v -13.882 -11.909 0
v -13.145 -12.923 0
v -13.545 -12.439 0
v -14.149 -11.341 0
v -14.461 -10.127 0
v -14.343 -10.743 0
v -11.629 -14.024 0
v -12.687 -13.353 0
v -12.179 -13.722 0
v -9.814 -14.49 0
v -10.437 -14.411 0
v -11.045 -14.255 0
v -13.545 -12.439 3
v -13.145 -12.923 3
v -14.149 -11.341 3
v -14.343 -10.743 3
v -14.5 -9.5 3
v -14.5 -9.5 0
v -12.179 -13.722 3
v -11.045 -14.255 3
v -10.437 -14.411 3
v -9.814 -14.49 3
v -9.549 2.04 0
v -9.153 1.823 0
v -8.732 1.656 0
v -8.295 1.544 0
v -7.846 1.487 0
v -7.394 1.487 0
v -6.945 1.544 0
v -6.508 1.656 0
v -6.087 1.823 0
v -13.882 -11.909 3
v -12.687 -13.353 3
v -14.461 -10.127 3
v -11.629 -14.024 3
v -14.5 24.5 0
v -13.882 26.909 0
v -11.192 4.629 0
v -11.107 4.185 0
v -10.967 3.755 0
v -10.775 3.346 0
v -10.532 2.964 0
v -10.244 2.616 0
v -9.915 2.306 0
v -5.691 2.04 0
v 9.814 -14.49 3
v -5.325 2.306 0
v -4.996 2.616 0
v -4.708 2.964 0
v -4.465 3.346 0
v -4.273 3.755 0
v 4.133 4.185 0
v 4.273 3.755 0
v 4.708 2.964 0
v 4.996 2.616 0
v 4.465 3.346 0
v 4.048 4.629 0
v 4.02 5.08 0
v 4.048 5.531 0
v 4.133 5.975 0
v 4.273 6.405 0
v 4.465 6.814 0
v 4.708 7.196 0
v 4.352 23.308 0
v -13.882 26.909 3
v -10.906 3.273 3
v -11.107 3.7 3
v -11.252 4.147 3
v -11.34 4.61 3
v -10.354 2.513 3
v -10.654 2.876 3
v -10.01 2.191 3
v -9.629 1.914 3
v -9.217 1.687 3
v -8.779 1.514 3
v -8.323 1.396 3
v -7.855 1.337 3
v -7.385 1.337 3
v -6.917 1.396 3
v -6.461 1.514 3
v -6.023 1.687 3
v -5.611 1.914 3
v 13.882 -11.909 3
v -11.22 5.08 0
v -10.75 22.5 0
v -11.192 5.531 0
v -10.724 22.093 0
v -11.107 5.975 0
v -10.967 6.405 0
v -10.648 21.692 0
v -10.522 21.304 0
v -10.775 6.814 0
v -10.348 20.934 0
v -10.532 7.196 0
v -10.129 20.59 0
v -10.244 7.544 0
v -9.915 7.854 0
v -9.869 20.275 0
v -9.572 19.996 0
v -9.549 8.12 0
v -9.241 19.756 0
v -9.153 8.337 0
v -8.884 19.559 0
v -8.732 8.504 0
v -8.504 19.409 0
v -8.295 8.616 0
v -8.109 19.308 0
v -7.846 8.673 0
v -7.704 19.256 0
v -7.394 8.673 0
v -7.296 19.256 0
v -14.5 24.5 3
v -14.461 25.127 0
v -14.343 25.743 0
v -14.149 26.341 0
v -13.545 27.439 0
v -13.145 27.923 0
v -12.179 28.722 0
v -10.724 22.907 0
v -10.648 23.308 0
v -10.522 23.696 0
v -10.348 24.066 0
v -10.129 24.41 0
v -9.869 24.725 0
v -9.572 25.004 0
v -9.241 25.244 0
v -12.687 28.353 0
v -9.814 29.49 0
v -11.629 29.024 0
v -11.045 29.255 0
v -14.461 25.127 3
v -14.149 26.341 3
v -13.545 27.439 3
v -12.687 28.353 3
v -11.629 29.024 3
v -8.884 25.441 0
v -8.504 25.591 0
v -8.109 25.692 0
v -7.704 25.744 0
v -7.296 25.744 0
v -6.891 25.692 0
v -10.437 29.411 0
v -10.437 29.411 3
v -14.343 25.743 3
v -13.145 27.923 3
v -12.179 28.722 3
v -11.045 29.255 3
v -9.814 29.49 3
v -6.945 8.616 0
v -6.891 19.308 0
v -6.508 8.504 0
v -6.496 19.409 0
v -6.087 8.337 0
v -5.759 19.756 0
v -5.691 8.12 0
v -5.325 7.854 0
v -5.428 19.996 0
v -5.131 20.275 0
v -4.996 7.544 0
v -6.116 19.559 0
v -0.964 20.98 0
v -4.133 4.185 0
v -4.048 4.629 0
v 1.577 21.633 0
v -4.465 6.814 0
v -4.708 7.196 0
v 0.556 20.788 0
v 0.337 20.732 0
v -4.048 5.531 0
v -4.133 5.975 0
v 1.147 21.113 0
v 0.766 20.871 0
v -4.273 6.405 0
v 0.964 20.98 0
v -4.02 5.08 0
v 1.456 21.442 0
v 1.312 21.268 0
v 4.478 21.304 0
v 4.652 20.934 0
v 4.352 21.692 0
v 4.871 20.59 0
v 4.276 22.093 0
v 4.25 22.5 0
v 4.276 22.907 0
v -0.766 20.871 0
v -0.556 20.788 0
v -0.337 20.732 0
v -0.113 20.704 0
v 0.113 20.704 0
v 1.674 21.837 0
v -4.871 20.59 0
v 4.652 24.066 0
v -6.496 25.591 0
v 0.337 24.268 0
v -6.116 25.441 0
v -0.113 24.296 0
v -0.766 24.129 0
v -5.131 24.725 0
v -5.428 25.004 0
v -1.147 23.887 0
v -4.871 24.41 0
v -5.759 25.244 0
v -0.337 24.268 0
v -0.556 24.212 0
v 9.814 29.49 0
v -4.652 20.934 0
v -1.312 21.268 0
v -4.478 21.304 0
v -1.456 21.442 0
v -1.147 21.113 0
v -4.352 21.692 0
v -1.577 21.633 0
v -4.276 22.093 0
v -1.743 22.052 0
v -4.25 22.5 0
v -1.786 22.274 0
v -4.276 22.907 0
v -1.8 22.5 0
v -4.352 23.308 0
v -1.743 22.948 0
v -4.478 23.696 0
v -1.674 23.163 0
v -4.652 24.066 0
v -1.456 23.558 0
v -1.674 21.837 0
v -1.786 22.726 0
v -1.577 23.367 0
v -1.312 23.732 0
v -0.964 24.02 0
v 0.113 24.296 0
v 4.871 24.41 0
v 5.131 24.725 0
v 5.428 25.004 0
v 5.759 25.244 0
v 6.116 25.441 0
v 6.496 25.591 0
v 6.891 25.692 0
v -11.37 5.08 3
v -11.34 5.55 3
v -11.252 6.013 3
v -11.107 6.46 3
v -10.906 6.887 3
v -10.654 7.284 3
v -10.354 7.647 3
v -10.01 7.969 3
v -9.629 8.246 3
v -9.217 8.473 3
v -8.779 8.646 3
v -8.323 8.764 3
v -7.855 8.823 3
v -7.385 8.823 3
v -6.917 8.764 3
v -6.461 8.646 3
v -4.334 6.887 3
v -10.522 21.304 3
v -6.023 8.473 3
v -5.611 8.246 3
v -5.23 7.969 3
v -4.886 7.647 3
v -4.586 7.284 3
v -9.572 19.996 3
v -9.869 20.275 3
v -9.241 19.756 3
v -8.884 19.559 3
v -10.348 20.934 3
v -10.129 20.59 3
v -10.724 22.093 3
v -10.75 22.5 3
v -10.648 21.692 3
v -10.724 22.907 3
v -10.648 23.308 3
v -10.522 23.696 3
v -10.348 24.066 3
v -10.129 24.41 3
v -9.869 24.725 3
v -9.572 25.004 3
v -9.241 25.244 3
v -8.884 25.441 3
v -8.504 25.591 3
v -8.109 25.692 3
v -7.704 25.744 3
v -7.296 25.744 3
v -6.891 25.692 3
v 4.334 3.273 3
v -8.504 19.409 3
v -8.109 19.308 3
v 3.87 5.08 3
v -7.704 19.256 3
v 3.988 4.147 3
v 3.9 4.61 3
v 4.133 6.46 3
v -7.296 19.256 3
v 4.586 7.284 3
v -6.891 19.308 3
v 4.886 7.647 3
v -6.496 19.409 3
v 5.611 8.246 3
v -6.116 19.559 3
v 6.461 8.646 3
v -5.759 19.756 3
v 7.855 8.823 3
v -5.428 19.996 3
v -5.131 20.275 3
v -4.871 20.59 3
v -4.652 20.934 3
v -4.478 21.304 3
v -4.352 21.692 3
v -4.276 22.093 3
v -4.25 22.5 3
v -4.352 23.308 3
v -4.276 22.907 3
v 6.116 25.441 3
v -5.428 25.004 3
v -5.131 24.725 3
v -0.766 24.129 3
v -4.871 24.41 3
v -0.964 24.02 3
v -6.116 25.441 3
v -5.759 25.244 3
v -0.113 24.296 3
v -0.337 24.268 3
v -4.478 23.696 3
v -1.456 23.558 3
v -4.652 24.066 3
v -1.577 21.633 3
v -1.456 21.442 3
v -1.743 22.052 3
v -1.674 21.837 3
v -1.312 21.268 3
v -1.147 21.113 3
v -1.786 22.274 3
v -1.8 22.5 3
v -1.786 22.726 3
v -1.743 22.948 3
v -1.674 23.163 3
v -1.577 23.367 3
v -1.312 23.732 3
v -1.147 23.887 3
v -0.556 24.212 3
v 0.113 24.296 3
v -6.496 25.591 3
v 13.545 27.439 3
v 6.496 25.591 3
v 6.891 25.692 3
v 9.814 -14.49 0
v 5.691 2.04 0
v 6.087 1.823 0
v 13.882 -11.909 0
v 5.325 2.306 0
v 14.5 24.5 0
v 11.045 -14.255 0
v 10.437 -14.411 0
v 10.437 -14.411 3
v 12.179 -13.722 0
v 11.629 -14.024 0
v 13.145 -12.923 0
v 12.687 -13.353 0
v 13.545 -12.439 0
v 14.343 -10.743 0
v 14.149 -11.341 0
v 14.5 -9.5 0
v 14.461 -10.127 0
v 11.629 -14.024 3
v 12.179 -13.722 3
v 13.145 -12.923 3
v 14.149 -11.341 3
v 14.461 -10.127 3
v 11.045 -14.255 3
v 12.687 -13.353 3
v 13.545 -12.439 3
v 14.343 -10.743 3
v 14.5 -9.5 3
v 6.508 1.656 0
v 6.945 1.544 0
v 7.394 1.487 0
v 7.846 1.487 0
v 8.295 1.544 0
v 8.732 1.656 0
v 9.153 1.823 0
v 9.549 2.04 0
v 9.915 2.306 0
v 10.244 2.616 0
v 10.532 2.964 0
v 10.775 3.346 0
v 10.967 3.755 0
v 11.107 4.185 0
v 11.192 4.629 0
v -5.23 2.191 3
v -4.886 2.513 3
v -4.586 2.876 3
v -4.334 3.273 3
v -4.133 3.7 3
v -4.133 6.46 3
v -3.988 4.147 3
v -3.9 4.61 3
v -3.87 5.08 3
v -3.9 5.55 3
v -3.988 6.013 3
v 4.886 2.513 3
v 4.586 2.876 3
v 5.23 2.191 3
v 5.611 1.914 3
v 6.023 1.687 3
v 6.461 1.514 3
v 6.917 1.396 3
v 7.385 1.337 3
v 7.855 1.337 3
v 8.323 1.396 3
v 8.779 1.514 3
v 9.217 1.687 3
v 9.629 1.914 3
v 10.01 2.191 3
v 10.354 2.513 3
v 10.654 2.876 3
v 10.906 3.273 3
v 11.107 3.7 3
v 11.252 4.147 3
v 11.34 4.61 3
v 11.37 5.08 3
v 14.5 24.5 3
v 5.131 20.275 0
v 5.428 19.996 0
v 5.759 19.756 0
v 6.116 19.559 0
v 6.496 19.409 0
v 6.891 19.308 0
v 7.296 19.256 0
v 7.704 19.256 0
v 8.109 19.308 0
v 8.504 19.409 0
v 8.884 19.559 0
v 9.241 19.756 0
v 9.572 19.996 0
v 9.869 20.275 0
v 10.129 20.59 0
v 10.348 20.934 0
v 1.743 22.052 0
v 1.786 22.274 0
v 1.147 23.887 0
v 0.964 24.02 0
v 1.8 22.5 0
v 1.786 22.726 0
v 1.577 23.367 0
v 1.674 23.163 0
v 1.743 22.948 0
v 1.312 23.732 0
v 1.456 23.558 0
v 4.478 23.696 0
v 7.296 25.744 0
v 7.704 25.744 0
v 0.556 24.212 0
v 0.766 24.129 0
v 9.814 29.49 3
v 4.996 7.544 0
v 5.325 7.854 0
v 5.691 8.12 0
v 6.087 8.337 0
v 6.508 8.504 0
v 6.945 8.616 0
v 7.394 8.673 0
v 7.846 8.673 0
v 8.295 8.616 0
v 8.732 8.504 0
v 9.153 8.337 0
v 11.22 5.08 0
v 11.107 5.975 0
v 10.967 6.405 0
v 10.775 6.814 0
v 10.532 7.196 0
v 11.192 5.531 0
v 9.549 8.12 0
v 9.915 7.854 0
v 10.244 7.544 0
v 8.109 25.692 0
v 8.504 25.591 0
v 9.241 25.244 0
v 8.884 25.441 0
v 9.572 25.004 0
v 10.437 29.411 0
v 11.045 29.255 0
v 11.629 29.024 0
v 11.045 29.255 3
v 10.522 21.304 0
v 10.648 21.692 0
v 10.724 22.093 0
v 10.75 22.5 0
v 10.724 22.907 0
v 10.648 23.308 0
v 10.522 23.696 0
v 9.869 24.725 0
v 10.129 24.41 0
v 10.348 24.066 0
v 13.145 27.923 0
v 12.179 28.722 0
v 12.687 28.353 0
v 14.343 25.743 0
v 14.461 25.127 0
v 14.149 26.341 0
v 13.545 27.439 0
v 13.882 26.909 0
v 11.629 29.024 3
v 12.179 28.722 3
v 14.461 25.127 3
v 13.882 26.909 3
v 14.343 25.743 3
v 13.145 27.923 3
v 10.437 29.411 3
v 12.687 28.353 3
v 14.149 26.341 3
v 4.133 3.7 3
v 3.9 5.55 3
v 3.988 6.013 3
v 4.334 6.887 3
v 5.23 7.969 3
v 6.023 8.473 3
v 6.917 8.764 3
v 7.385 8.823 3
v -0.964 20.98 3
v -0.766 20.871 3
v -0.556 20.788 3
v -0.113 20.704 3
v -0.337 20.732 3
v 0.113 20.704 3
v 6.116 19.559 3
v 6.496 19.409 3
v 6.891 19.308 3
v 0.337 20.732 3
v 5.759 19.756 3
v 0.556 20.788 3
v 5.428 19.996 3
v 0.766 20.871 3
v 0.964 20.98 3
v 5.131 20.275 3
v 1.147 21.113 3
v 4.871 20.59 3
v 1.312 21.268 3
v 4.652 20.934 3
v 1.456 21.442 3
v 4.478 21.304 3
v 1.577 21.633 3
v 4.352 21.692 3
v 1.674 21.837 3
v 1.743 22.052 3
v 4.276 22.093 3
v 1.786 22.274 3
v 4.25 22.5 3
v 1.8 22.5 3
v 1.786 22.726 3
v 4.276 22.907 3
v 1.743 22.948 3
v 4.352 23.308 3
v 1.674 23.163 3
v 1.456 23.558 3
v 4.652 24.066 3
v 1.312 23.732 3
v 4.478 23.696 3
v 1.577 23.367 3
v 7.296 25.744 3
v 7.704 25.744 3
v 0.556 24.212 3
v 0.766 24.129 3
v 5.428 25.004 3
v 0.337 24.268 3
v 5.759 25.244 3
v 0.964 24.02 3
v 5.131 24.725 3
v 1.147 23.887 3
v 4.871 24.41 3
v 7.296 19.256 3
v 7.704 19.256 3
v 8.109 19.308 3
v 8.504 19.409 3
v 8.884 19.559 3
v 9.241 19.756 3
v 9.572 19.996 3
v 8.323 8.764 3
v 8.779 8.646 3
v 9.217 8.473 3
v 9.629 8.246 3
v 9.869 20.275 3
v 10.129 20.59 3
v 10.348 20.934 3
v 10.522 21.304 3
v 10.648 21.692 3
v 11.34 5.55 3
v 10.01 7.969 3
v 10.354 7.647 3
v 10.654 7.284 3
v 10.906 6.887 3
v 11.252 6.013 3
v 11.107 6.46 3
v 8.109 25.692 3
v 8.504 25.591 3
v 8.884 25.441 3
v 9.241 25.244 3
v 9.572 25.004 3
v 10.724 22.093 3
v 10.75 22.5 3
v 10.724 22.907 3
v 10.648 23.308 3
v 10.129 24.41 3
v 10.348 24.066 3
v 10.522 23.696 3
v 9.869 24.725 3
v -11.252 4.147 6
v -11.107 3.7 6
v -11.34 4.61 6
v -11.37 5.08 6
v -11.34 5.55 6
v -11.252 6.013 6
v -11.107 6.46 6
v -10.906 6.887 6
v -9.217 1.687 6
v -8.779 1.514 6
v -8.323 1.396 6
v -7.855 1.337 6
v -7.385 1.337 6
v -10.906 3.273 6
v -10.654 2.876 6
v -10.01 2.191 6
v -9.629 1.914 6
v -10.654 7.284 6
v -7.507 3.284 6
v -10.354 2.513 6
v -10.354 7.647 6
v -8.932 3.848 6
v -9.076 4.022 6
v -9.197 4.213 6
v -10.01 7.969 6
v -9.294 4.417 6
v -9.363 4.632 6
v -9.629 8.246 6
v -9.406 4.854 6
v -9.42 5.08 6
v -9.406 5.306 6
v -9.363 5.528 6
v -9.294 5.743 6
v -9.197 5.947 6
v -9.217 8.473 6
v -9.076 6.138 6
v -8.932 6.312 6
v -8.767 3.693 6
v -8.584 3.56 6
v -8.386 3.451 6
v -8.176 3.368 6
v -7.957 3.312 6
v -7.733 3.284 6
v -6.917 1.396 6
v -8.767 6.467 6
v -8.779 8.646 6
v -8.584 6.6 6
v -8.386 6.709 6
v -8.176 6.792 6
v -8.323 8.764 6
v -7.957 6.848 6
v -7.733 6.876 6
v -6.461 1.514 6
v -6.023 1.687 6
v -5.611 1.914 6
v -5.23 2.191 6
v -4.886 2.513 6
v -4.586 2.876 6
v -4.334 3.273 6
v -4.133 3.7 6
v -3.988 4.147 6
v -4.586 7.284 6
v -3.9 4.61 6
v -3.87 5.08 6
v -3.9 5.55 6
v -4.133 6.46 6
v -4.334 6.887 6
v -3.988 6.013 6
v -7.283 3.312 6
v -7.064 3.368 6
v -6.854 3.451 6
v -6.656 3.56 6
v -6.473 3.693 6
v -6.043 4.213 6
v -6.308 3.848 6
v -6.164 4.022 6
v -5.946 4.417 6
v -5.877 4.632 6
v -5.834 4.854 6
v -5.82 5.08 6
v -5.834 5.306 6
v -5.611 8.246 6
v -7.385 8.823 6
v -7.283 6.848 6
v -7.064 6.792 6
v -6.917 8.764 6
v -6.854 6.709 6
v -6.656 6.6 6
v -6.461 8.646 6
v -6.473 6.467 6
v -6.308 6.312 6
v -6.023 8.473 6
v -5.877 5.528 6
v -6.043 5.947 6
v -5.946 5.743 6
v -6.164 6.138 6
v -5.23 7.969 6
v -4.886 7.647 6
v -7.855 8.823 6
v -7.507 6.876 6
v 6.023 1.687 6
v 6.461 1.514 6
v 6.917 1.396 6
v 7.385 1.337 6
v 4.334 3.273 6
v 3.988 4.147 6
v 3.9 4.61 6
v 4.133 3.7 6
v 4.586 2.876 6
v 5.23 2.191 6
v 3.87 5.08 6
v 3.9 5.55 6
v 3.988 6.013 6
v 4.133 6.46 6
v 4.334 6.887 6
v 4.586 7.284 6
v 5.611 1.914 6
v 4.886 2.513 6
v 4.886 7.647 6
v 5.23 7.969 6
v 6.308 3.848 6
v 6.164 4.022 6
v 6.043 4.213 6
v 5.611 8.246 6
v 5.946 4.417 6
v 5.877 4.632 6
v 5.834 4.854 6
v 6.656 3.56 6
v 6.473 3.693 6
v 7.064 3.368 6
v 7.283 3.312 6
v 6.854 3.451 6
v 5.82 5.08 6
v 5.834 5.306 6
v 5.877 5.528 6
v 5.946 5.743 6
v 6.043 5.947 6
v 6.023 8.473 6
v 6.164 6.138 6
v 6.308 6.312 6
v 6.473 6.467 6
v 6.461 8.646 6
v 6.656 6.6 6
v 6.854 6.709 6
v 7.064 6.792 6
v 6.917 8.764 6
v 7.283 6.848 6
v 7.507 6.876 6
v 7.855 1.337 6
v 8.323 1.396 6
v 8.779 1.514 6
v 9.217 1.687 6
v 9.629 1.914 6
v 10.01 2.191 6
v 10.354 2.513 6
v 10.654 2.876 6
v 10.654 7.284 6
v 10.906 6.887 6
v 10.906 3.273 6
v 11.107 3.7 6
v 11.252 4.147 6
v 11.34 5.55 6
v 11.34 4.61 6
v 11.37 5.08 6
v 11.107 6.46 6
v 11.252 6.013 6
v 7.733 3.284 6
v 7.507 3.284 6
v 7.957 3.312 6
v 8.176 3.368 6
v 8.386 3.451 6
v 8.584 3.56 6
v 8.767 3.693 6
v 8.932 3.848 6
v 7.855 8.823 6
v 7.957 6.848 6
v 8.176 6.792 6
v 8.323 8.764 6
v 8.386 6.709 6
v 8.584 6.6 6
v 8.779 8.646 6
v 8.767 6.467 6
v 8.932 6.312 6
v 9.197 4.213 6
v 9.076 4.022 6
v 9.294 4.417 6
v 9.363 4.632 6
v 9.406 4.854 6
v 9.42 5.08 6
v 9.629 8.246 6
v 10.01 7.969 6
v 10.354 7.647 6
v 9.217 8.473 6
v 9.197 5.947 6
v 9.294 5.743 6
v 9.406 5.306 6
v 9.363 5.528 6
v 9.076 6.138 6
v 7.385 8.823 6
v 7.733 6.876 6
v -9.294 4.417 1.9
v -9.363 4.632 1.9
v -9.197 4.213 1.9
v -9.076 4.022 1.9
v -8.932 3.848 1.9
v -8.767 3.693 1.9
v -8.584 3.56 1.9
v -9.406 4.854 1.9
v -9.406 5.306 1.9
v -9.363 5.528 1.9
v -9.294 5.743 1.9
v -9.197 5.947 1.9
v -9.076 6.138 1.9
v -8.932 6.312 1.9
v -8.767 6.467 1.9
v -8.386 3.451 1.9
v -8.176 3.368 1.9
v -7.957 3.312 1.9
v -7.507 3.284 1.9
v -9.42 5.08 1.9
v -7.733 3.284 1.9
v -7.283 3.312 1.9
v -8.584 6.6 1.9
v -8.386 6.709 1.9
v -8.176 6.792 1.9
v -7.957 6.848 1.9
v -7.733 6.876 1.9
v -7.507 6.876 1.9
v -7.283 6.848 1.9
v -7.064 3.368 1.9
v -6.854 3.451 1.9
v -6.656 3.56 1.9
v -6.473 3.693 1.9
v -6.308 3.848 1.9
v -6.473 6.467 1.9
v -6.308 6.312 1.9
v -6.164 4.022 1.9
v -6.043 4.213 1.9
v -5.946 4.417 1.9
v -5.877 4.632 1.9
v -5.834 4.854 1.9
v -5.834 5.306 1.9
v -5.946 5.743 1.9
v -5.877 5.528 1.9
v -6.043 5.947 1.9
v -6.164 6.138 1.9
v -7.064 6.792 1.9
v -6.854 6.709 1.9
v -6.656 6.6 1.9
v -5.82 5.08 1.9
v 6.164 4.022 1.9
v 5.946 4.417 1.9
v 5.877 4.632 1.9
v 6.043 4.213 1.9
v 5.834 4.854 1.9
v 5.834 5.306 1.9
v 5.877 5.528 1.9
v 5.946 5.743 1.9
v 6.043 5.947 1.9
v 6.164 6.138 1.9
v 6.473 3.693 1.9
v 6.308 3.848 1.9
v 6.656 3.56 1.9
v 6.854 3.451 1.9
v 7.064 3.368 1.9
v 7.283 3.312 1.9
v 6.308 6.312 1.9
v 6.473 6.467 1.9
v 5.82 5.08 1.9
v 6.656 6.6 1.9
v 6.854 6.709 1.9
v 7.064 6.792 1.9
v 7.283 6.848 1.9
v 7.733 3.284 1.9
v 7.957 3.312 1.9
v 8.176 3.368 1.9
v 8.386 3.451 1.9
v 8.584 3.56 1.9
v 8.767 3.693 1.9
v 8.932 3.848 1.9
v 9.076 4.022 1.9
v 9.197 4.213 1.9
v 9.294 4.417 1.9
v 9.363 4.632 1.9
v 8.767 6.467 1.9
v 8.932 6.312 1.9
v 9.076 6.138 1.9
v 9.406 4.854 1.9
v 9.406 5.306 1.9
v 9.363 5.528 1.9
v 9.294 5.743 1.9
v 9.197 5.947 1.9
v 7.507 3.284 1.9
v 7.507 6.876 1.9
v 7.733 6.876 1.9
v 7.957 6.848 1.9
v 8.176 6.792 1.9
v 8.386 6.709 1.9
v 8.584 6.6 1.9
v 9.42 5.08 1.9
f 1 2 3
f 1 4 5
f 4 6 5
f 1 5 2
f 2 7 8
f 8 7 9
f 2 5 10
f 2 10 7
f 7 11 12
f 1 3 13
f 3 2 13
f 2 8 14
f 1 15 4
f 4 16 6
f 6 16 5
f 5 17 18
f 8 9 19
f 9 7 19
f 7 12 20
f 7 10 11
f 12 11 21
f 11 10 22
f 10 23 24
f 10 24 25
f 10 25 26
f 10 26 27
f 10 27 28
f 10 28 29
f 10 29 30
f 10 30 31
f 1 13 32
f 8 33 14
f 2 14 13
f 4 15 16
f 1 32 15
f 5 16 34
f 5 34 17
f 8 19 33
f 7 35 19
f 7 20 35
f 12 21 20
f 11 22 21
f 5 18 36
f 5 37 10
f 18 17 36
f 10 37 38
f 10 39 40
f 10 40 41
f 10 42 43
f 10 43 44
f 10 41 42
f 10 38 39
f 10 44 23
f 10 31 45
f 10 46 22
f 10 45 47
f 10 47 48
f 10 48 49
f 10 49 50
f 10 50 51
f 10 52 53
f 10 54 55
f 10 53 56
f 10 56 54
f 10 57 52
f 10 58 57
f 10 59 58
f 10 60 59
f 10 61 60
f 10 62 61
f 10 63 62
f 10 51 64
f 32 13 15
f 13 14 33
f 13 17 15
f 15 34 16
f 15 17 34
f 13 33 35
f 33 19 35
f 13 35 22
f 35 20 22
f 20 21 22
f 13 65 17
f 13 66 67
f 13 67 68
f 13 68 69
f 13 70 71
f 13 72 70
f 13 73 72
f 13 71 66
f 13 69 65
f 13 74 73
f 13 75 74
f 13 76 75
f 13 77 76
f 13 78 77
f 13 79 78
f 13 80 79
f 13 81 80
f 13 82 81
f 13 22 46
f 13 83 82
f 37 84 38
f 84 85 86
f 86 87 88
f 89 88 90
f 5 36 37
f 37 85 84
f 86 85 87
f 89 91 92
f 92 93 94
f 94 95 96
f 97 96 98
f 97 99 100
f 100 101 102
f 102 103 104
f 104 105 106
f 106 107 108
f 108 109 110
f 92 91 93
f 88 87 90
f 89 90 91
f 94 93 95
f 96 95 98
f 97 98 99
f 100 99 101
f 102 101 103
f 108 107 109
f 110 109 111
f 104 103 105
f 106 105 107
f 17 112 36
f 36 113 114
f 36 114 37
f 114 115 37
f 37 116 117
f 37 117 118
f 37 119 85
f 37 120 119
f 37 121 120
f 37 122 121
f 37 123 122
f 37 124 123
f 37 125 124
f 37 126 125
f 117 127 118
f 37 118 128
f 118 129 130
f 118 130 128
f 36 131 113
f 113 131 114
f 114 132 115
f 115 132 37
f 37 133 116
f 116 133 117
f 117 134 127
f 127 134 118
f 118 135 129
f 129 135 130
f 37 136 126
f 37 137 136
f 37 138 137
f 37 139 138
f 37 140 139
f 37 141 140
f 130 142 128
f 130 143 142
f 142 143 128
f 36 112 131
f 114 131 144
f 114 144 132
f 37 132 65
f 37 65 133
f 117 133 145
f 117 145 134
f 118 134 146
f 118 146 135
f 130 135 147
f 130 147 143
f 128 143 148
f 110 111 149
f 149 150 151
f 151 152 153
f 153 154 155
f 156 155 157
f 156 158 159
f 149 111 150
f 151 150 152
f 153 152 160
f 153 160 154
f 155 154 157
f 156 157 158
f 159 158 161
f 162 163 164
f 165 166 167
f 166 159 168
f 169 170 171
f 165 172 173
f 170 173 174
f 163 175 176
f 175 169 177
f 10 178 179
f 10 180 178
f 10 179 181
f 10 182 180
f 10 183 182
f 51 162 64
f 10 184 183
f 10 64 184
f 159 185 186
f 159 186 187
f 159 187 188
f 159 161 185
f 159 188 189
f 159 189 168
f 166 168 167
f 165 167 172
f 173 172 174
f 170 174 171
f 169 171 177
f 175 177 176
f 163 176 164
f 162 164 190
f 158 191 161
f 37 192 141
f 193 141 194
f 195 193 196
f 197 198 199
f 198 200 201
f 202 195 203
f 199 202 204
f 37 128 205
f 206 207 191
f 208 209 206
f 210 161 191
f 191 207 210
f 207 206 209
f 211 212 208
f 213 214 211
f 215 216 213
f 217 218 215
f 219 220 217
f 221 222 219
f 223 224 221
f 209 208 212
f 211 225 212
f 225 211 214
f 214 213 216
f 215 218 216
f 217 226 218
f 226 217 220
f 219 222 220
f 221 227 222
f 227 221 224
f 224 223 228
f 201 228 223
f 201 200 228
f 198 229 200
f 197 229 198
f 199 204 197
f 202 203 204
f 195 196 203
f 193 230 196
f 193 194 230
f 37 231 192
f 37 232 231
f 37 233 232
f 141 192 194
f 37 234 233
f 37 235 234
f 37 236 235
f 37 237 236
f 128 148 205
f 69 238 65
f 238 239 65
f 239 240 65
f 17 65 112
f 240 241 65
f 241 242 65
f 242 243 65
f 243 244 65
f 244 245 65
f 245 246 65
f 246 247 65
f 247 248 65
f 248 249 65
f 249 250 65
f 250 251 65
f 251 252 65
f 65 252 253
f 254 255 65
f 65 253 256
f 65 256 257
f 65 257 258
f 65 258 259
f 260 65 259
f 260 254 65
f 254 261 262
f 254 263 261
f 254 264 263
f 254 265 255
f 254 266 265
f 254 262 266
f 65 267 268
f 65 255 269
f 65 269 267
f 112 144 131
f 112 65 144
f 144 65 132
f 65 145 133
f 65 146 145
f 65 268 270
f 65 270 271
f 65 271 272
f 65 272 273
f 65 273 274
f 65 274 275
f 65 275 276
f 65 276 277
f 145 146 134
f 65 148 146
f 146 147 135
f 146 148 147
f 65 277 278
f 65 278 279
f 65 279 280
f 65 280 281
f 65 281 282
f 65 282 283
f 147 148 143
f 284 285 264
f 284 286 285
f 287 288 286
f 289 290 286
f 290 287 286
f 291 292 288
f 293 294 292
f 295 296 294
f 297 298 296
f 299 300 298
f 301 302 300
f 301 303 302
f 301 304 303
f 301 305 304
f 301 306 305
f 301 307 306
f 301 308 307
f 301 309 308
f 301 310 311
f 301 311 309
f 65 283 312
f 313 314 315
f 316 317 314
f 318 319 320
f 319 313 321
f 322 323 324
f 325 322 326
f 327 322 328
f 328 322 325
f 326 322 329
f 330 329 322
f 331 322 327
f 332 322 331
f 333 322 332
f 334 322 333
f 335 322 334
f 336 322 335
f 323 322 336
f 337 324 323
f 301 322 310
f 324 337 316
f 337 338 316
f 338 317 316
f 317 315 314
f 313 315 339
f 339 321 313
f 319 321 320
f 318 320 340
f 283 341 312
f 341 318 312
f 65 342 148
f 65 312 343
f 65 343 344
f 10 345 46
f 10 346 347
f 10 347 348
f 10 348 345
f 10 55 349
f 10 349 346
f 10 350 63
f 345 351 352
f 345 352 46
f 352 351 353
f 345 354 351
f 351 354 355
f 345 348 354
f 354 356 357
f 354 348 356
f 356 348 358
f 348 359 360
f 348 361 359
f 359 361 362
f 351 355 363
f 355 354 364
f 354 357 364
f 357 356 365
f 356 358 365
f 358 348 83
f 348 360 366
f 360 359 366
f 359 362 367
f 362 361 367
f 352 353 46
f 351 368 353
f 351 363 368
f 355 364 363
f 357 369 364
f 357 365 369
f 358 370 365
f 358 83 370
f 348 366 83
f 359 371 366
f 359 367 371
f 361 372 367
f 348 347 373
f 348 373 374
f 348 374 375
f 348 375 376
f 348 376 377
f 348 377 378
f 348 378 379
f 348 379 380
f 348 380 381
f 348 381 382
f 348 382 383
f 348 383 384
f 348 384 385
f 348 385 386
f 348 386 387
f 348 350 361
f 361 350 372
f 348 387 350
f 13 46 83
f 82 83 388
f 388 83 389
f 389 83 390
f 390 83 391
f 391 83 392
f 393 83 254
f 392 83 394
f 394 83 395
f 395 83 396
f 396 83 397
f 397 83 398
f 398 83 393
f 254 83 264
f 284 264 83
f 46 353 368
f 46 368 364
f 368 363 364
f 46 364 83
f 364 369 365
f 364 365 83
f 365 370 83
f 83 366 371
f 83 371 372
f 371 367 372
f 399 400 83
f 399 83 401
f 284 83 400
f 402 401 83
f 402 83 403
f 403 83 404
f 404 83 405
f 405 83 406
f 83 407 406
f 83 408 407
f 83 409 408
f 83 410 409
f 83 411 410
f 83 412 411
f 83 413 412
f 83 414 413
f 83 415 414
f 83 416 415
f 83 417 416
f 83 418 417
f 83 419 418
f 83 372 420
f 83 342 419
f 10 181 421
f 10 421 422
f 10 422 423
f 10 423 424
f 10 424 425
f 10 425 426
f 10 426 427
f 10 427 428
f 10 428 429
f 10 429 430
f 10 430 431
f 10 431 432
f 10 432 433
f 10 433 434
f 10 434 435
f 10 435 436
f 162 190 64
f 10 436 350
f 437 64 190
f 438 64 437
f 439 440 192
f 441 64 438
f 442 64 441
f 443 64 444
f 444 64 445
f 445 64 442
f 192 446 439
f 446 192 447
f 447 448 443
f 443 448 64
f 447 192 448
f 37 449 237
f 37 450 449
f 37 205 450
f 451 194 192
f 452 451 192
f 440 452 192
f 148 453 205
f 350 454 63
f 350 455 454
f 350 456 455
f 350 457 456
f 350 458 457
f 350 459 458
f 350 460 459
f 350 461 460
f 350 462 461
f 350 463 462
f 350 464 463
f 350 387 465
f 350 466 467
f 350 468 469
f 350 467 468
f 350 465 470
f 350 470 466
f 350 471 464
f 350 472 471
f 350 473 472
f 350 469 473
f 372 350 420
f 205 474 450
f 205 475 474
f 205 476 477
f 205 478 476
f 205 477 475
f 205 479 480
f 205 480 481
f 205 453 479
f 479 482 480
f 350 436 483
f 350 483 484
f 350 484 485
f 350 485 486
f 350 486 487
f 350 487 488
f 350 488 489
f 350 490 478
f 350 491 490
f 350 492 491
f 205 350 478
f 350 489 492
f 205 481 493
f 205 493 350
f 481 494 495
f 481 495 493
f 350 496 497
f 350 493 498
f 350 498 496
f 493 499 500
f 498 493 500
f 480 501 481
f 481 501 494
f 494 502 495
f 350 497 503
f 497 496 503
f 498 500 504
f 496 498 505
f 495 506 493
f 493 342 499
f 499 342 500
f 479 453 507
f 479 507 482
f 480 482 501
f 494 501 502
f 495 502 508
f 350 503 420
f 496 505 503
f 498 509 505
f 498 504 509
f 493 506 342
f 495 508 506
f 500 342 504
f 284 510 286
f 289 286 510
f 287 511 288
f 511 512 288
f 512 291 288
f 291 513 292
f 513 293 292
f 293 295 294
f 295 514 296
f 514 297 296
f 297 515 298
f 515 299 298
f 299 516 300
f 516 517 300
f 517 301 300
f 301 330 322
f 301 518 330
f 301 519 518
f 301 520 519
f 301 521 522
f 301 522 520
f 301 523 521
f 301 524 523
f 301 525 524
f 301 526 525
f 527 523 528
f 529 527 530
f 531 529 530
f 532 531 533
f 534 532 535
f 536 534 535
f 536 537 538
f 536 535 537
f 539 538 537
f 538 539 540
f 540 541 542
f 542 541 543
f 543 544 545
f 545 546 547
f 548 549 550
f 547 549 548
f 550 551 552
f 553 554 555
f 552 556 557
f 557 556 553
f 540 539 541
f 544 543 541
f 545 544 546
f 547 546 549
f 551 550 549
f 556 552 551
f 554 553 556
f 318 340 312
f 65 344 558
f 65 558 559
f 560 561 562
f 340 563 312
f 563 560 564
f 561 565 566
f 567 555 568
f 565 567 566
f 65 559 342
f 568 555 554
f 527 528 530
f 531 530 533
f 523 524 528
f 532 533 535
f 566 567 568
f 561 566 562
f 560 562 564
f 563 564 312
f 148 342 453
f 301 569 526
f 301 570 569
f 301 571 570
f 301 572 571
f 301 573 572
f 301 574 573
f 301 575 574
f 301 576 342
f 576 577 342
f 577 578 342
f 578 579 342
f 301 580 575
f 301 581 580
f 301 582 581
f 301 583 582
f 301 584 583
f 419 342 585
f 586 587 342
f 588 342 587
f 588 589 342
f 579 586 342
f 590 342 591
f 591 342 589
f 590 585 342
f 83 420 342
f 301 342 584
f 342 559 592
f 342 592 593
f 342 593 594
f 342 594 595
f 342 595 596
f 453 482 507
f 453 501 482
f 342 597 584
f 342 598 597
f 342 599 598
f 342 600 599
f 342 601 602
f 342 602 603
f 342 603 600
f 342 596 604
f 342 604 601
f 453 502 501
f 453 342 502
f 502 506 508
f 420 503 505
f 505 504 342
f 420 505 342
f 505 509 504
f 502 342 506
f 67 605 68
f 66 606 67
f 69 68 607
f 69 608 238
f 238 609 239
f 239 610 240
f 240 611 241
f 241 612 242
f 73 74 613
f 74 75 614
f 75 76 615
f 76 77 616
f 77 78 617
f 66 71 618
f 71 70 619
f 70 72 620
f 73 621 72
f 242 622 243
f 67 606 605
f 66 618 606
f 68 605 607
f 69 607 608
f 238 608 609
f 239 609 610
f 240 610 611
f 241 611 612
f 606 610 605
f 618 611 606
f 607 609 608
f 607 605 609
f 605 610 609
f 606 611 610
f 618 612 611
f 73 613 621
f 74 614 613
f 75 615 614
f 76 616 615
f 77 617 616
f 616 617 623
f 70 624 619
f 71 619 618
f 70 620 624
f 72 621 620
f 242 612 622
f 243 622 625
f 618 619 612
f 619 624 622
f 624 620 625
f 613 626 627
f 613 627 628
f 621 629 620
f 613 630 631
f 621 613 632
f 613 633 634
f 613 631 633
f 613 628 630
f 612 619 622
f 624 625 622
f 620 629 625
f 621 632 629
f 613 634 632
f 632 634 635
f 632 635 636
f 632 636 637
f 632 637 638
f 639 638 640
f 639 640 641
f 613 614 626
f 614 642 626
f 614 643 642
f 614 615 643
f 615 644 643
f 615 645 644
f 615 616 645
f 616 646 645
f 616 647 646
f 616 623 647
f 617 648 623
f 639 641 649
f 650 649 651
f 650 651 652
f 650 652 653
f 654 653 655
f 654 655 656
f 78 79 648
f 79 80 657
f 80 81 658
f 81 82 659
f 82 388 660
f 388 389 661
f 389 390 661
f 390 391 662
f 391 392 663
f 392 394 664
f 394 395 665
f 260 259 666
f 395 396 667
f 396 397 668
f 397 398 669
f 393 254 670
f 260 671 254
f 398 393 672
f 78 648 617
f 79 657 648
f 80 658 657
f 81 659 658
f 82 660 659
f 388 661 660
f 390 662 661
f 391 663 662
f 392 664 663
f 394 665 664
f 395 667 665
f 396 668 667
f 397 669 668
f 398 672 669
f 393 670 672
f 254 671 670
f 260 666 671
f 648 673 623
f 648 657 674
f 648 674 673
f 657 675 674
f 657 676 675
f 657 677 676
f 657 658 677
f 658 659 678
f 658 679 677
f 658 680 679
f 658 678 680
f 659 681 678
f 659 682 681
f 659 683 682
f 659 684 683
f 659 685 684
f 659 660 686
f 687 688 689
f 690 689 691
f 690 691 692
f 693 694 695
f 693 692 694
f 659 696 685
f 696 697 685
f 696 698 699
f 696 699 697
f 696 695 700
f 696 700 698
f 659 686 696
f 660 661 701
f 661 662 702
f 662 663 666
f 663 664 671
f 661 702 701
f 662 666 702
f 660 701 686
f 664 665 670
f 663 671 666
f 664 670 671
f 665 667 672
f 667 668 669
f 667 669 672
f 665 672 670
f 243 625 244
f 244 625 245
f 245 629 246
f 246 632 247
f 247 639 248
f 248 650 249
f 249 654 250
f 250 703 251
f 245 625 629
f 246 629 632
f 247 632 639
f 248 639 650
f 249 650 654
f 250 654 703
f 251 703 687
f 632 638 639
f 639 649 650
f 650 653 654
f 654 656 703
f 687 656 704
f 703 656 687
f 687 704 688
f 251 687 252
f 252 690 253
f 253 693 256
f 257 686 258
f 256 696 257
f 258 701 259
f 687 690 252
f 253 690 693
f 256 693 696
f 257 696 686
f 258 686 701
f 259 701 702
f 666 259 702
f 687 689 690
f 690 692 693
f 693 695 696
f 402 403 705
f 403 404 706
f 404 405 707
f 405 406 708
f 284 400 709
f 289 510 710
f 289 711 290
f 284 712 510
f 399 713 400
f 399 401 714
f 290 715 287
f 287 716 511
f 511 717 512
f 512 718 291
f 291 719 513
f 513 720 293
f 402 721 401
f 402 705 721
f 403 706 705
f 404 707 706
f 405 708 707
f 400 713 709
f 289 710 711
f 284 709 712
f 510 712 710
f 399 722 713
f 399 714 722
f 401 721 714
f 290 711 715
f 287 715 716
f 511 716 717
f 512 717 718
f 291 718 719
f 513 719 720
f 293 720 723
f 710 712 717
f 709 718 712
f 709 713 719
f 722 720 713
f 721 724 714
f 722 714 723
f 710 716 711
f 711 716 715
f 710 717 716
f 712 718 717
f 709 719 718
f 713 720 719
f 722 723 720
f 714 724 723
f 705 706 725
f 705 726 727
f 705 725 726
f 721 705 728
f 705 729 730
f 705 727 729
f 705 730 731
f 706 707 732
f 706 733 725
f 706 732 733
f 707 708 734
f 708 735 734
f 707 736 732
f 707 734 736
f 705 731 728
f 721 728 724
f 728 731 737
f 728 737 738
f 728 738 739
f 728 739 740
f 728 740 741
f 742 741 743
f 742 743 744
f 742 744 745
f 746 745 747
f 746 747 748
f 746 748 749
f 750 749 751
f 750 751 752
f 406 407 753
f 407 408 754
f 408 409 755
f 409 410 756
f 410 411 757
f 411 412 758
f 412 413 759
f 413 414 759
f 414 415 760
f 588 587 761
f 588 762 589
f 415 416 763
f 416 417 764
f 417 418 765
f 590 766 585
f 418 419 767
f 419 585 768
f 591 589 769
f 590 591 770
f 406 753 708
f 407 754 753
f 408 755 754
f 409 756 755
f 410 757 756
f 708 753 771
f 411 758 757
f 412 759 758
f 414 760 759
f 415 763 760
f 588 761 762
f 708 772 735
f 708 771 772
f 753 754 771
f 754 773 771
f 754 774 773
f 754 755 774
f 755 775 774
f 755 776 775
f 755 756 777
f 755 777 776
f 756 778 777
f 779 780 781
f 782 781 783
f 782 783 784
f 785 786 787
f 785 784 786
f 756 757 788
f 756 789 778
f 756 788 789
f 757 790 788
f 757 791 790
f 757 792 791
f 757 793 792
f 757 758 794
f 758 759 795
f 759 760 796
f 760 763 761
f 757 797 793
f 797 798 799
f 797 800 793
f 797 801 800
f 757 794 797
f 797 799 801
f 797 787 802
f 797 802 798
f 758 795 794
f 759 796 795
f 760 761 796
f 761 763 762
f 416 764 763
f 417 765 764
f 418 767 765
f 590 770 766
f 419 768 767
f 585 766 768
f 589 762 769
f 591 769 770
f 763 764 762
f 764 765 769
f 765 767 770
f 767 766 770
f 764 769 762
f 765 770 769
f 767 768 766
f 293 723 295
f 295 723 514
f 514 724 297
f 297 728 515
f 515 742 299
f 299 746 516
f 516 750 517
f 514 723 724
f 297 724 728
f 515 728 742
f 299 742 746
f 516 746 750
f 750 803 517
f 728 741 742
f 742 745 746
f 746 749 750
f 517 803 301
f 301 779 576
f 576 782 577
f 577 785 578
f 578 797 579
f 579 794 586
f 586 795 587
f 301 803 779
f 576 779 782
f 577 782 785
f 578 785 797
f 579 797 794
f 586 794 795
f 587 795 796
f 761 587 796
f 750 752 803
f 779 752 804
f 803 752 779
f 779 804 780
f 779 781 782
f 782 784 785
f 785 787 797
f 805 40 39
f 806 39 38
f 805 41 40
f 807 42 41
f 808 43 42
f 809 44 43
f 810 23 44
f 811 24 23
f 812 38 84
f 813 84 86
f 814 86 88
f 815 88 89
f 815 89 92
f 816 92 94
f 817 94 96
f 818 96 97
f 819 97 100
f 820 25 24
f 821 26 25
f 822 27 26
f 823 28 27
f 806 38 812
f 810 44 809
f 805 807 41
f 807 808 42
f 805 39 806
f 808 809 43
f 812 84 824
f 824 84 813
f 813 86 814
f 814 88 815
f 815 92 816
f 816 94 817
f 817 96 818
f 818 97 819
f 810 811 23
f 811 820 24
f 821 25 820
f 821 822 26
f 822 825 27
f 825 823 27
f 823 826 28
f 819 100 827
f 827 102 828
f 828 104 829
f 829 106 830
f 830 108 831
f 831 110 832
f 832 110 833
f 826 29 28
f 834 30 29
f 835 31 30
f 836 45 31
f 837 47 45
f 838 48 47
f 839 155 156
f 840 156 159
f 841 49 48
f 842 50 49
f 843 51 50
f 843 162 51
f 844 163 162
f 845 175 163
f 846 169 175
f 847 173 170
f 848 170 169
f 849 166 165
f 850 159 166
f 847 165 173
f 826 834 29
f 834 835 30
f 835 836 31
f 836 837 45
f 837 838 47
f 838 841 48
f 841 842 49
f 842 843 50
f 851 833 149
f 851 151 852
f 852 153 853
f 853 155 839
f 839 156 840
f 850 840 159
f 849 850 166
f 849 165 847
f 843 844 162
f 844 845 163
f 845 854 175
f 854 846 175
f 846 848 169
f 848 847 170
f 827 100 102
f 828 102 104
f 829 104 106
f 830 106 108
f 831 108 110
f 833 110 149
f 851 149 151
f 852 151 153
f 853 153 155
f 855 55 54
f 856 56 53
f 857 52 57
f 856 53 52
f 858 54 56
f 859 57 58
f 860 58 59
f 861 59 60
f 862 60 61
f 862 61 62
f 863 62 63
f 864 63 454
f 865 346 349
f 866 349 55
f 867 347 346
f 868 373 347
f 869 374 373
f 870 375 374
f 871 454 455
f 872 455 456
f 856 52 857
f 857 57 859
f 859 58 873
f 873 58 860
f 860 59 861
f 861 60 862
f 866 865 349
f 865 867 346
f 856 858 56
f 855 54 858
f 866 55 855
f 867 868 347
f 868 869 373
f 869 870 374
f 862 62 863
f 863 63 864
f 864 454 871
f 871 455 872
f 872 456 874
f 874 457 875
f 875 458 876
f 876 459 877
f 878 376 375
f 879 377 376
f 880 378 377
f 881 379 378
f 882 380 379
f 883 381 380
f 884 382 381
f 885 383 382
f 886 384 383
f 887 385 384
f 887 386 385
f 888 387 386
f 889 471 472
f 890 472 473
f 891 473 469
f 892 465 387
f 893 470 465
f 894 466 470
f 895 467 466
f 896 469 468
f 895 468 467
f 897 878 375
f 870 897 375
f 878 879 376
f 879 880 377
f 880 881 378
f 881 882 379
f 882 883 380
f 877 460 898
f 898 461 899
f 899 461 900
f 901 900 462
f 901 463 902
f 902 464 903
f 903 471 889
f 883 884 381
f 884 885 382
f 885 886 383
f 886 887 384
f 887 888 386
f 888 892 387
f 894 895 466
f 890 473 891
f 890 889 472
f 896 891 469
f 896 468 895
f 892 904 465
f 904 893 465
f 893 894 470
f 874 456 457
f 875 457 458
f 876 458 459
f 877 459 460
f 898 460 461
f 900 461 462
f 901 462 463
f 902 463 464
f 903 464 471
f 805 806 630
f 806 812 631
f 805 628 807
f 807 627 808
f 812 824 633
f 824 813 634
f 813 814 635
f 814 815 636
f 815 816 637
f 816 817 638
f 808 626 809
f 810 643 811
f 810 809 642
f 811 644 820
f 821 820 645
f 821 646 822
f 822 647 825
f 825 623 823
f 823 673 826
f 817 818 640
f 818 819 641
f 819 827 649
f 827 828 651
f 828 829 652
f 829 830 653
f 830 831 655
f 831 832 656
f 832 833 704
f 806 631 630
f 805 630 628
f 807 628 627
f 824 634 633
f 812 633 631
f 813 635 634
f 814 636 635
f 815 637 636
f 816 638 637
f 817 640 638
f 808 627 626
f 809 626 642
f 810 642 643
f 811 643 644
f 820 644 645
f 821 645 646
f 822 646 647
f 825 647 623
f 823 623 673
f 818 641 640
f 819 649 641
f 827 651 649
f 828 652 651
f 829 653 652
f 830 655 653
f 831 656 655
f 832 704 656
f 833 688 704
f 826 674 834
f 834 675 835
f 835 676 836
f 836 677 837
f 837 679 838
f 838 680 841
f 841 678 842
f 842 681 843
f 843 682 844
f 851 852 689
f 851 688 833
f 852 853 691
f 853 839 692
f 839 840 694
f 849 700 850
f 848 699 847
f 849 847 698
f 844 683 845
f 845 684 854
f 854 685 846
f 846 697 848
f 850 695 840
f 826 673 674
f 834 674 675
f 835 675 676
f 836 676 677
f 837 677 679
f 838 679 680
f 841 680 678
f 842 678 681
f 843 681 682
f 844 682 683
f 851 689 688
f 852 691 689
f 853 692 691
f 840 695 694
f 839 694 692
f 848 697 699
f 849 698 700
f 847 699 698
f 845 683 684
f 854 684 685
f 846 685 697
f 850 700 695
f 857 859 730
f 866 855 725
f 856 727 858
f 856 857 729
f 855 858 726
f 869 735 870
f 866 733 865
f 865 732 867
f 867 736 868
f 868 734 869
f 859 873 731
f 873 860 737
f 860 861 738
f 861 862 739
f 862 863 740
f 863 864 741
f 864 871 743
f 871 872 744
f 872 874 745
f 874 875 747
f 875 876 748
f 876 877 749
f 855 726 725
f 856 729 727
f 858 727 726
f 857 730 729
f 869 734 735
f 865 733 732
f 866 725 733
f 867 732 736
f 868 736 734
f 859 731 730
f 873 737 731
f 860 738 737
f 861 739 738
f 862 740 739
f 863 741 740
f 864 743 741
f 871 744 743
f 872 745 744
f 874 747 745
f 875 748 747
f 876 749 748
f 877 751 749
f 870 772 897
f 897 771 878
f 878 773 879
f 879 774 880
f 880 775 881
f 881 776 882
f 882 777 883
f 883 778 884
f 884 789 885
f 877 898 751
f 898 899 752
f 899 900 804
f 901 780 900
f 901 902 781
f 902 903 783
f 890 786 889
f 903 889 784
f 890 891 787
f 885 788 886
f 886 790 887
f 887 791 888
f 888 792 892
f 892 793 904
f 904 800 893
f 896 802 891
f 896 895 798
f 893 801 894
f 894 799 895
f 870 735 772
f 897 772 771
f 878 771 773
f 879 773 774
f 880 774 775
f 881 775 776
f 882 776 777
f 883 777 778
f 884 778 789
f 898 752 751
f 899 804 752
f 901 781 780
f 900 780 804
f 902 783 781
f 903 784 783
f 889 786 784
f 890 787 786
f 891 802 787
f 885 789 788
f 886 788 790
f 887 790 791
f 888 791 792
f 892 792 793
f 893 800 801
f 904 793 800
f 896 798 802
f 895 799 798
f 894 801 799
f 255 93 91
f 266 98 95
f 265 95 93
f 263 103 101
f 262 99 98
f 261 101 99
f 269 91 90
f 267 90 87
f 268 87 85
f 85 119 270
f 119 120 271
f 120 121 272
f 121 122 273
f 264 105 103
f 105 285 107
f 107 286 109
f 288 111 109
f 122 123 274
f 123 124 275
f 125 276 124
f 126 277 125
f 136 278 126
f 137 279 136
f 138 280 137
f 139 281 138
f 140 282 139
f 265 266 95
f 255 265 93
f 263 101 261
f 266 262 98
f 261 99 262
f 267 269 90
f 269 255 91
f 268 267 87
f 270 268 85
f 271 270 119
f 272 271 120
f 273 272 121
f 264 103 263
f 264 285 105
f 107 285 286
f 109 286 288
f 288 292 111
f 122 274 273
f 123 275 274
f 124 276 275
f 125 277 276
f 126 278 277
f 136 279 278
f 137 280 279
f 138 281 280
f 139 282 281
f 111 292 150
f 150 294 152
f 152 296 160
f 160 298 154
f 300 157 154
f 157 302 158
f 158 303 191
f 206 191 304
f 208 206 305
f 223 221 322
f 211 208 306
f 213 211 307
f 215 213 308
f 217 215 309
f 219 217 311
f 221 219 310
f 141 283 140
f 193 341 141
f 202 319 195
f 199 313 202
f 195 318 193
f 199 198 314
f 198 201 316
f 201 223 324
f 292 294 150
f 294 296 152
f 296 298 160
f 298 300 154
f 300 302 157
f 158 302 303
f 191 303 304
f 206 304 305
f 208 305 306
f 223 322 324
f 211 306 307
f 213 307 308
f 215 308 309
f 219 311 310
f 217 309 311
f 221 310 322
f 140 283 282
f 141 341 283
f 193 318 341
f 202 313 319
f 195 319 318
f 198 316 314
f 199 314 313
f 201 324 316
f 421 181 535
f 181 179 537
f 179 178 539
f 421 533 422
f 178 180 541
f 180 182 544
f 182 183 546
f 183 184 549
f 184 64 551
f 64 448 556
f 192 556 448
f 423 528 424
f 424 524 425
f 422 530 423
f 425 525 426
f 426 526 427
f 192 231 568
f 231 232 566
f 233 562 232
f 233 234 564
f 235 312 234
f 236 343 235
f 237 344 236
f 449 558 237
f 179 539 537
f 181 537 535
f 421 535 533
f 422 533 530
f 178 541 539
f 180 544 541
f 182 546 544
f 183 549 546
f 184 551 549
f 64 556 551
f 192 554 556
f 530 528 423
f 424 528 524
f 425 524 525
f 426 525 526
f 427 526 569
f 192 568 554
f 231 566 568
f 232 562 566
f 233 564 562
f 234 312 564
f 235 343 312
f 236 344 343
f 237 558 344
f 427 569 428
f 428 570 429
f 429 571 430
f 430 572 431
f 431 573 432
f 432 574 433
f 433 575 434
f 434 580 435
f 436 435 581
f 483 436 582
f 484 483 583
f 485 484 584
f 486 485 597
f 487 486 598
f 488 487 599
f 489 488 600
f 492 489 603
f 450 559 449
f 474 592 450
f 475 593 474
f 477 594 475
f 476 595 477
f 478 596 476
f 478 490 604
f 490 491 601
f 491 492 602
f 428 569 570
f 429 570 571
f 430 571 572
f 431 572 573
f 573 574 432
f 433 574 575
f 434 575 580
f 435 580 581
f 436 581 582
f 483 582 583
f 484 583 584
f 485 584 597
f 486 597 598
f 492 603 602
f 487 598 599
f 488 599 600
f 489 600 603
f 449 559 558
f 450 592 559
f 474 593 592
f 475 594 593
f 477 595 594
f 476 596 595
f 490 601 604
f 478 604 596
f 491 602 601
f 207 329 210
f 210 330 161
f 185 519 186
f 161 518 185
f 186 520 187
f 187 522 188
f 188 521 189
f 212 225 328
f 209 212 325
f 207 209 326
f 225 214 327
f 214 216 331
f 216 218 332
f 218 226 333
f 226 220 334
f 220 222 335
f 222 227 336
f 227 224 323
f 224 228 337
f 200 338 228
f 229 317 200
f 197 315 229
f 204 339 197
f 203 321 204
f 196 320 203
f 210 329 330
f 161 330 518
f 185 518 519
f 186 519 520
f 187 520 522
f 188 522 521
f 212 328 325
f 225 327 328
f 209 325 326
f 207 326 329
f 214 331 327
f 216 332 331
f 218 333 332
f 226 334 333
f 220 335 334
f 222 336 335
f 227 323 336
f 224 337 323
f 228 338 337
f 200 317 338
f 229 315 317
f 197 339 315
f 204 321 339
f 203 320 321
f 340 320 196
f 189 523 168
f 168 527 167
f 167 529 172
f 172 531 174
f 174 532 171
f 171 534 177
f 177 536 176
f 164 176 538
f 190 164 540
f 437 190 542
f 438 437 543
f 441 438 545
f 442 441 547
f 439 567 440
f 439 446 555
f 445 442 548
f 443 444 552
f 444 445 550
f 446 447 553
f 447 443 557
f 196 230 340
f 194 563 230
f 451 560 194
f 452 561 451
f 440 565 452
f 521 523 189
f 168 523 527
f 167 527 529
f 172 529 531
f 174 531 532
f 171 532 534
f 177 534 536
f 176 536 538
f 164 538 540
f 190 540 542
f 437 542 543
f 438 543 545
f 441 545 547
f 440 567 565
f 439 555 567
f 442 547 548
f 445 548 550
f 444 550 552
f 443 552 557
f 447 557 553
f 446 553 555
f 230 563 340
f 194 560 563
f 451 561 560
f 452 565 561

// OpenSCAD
$fn = 50;

difference() {
	union() {
		translate(v = [0.0, 7.5, 0]) {
			hull() {
				translate(v = [-9.5, 17.0, 0]) {
					cylinder(h = 3, r = 5);
				}
				translate(v = [9.5, 17.0, 0]) {
					cylinder(h = 3, r = 5);
				}
				translate(v = [-9.5, -17.0, 0]) {
					cylinder(h = 3, r = 5);
				}
				translate(v = [9.5, -17.0, 0]) {
					cylinder(h = 3, r = 5);
				}
			}
		}
		translate(v = [-7.62, 5.08, 3.0]) {
			cylinder(h = 3, r = 3.75);
		}
		translate(v = [7.62, 5.08, 3.0]) {
			cylinder(h = 3, r = 3.75);
		}
	}
	union() {
		translate(v = [-7.62, 5.08, 0]) {
			rotate(a = [0, 180, 0]) {
				difference() {
					union() {
						translate(v = [0, 0, -6.0]) {
							cylinder(h = 6, r = 1.5);
						}
						translate(v = [0, 0, -1.9]) {
							cylinder(h = 1.9, r1 = 1.8, r2 = 3.6);
						}
						translate(v = [0, 0, -6.0]) {
							cylinder(h = 6, r = 1.8);
						}
						translate(v = [0, 0, -6.0]) {
							cylinder(h = 6, r = 1.5);
						}
					}
					union();
				}
			}
		}
		translate(v = [7.62, 5.08, 0]) {
			rotate(a = [0, 180, 0]) {
				difference() {
					union() {
						translate(v = [0, 0, -6.0]) {
							cylinder(h = 6, r = 1.5);
						}
						translate(v = [0, 0, -1.9]) {
							cylinder(h = 1.9, r1 = 1.8, r2 = 3.6);
						}
						translate(v = [0, 0, -6.0]) {
							cylinder(h = 6, r = 1.8);
						}
						translate(v = [0, 0, -6.0]) {
							cylinder(h = 6, r = 1.5);
						}
					}
					union();
				}
			}
		}
		translate(v = [-7.5, 22.5, -1]) {
			cylinder(h = 5, r = 3.25);
		}
		translate(v = [7.5, 22.5, -1]) {
			cylinder(h = 5, r = 3.25);
		}
		translate(v = [0.0, 22.5, -1]) {
			cylinder(h = 5, r = 1.8);
		}
	}
}
